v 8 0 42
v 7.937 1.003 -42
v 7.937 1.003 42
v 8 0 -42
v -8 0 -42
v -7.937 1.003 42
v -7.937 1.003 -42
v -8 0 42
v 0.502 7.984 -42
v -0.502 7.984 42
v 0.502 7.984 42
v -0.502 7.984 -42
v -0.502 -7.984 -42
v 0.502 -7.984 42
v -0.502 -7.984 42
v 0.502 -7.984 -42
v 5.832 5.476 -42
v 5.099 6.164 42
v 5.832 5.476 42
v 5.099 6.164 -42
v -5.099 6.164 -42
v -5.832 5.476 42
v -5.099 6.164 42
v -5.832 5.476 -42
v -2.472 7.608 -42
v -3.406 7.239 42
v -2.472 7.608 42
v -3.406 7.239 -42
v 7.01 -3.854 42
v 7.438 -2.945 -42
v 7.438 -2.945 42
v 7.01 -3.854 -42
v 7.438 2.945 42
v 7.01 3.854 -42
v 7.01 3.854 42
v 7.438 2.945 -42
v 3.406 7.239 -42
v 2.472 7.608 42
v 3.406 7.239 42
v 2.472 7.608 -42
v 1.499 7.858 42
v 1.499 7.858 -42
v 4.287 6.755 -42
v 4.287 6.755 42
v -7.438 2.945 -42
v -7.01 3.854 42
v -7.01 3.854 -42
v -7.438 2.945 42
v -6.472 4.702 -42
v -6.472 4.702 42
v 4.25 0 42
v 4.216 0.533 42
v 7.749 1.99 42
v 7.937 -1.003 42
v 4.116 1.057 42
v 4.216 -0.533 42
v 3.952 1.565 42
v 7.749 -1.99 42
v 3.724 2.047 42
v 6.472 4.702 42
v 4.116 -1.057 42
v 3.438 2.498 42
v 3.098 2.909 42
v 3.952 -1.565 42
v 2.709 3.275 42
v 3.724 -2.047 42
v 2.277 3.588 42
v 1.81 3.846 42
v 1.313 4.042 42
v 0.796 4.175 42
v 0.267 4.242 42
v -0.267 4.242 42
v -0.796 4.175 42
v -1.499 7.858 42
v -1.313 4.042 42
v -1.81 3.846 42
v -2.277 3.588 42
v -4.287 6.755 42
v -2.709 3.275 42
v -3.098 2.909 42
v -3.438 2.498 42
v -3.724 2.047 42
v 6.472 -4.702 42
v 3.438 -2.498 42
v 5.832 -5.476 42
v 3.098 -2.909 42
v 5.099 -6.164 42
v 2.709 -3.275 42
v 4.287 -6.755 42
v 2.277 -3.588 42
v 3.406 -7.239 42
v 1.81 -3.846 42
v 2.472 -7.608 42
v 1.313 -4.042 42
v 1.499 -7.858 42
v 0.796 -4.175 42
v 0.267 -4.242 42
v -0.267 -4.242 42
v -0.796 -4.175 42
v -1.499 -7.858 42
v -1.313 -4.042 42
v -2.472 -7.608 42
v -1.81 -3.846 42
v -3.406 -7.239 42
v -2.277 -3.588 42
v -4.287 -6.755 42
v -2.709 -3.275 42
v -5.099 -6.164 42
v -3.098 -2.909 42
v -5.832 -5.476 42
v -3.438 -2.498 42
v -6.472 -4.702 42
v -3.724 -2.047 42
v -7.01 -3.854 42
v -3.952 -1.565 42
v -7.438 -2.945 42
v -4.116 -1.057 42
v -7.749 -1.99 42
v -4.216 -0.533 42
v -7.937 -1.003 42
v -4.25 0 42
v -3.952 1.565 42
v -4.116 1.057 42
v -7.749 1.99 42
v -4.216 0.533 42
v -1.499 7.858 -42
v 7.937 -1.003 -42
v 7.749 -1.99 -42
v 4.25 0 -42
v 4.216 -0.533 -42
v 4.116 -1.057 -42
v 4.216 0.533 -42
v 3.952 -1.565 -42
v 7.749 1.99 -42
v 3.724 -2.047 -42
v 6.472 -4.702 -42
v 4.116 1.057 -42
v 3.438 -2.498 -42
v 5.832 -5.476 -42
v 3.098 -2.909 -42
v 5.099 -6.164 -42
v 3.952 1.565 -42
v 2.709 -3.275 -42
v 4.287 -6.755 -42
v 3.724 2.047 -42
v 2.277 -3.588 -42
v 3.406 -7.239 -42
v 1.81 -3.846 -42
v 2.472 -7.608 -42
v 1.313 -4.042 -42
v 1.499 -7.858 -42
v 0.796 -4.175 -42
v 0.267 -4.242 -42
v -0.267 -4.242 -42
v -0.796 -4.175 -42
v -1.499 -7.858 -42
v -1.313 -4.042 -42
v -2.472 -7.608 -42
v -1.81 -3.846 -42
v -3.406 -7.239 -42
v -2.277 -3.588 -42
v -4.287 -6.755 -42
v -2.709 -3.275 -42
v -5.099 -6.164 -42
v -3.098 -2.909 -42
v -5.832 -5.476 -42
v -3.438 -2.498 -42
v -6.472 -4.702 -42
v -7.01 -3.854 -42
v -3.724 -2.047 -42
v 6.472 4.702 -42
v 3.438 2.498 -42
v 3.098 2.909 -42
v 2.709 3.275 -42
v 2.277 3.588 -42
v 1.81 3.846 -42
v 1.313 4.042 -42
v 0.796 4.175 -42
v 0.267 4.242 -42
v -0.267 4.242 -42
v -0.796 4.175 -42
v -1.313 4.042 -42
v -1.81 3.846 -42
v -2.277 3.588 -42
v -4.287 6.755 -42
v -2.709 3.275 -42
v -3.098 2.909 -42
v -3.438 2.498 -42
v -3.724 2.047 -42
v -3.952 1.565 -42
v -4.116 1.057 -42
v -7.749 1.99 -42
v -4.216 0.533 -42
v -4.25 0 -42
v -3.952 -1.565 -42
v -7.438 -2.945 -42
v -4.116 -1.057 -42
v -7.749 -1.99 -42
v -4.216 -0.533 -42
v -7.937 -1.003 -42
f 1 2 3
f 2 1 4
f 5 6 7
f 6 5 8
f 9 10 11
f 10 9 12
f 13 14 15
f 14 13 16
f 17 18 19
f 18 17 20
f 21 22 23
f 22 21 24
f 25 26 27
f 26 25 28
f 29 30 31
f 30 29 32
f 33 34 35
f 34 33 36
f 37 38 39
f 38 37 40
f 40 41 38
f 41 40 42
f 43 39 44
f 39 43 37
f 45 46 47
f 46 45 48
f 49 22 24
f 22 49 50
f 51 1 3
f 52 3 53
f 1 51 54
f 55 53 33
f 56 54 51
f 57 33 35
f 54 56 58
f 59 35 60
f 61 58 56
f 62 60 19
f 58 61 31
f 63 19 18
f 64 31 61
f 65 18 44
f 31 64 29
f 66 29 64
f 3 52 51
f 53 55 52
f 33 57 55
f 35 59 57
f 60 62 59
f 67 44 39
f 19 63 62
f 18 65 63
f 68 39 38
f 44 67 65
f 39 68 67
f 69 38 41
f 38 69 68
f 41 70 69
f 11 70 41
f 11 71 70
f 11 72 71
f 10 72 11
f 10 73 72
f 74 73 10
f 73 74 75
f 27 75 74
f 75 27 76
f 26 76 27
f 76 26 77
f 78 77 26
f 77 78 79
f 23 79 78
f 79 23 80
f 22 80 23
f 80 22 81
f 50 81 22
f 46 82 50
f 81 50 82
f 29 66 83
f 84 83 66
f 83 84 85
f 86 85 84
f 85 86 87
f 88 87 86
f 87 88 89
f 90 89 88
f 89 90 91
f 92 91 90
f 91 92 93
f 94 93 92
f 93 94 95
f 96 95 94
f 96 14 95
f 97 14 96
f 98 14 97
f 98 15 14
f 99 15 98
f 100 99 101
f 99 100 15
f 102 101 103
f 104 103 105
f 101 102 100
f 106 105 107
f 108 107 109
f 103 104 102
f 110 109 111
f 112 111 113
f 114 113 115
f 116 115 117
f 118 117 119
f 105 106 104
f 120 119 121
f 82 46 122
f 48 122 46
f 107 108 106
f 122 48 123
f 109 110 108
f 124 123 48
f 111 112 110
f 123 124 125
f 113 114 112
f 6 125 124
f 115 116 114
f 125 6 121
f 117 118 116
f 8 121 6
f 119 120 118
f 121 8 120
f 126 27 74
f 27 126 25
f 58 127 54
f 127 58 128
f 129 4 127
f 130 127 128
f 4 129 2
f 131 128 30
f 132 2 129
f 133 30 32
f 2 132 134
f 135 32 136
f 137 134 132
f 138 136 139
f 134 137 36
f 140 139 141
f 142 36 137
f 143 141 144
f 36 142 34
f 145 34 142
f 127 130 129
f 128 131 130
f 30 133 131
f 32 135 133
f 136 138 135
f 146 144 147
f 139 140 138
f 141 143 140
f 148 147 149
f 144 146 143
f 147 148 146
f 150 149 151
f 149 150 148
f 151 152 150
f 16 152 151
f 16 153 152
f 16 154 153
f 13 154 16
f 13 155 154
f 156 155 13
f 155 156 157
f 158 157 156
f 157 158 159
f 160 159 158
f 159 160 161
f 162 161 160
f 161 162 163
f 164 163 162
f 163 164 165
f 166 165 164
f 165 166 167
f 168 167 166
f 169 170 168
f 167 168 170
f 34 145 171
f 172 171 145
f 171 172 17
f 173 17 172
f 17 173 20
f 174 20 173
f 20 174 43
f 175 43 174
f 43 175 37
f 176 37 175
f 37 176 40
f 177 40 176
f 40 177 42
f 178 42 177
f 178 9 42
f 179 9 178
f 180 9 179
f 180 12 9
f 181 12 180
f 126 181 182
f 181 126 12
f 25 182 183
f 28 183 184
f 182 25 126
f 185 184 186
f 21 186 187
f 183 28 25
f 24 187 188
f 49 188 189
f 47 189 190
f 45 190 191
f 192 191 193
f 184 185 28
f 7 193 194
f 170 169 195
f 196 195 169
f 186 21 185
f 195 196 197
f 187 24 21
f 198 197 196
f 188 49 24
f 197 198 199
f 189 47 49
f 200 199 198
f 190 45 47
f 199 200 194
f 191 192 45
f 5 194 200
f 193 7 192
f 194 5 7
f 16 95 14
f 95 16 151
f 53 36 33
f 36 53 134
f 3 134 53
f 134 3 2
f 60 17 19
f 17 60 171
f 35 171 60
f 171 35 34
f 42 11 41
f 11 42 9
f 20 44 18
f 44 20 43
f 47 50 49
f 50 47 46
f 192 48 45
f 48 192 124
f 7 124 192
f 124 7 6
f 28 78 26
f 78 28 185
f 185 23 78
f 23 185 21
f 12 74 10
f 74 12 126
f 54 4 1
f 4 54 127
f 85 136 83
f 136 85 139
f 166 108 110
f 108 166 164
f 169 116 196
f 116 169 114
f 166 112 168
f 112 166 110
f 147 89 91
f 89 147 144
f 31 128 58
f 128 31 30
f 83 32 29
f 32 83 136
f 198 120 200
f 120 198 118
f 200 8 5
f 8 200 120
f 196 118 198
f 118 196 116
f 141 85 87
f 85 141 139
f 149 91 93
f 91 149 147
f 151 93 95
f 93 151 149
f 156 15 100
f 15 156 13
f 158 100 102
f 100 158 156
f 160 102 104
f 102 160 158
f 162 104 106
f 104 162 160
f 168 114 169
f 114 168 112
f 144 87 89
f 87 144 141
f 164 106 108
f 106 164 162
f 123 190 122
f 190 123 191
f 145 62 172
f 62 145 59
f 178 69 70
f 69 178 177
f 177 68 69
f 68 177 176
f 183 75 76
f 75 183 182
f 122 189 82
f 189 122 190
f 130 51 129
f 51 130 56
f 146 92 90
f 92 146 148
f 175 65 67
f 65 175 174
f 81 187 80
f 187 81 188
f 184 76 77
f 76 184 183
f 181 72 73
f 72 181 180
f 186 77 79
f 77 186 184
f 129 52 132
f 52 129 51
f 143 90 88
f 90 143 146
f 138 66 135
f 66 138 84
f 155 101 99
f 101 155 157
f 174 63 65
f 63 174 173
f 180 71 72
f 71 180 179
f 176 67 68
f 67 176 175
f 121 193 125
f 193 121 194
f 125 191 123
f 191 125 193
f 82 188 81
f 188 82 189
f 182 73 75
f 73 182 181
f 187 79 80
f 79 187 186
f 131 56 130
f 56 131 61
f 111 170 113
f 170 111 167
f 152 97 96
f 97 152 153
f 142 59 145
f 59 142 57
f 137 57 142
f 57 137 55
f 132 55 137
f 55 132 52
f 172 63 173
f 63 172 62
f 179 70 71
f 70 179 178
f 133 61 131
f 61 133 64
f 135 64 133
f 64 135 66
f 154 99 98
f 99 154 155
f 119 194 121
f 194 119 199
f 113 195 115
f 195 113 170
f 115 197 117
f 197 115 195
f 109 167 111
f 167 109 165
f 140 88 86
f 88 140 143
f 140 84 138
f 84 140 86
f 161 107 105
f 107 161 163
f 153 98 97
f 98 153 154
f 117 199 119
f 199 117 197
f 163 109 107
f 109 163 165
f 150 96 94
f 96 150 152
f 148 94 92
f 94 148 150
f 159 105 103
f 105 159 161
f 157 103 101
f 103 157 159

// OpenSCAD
$fn = 50;


difference() {
	union() {
		translate(v = [0, 0, -42.0000000000]) {
			cylinder(h = 84, r = 8.0000000000);
		}
	}
	union() {
		translate(v = [0, 0, -100.0000000000]) {
			cylinder(h = 200, r = 4.2500000000);
		}
	}
}
